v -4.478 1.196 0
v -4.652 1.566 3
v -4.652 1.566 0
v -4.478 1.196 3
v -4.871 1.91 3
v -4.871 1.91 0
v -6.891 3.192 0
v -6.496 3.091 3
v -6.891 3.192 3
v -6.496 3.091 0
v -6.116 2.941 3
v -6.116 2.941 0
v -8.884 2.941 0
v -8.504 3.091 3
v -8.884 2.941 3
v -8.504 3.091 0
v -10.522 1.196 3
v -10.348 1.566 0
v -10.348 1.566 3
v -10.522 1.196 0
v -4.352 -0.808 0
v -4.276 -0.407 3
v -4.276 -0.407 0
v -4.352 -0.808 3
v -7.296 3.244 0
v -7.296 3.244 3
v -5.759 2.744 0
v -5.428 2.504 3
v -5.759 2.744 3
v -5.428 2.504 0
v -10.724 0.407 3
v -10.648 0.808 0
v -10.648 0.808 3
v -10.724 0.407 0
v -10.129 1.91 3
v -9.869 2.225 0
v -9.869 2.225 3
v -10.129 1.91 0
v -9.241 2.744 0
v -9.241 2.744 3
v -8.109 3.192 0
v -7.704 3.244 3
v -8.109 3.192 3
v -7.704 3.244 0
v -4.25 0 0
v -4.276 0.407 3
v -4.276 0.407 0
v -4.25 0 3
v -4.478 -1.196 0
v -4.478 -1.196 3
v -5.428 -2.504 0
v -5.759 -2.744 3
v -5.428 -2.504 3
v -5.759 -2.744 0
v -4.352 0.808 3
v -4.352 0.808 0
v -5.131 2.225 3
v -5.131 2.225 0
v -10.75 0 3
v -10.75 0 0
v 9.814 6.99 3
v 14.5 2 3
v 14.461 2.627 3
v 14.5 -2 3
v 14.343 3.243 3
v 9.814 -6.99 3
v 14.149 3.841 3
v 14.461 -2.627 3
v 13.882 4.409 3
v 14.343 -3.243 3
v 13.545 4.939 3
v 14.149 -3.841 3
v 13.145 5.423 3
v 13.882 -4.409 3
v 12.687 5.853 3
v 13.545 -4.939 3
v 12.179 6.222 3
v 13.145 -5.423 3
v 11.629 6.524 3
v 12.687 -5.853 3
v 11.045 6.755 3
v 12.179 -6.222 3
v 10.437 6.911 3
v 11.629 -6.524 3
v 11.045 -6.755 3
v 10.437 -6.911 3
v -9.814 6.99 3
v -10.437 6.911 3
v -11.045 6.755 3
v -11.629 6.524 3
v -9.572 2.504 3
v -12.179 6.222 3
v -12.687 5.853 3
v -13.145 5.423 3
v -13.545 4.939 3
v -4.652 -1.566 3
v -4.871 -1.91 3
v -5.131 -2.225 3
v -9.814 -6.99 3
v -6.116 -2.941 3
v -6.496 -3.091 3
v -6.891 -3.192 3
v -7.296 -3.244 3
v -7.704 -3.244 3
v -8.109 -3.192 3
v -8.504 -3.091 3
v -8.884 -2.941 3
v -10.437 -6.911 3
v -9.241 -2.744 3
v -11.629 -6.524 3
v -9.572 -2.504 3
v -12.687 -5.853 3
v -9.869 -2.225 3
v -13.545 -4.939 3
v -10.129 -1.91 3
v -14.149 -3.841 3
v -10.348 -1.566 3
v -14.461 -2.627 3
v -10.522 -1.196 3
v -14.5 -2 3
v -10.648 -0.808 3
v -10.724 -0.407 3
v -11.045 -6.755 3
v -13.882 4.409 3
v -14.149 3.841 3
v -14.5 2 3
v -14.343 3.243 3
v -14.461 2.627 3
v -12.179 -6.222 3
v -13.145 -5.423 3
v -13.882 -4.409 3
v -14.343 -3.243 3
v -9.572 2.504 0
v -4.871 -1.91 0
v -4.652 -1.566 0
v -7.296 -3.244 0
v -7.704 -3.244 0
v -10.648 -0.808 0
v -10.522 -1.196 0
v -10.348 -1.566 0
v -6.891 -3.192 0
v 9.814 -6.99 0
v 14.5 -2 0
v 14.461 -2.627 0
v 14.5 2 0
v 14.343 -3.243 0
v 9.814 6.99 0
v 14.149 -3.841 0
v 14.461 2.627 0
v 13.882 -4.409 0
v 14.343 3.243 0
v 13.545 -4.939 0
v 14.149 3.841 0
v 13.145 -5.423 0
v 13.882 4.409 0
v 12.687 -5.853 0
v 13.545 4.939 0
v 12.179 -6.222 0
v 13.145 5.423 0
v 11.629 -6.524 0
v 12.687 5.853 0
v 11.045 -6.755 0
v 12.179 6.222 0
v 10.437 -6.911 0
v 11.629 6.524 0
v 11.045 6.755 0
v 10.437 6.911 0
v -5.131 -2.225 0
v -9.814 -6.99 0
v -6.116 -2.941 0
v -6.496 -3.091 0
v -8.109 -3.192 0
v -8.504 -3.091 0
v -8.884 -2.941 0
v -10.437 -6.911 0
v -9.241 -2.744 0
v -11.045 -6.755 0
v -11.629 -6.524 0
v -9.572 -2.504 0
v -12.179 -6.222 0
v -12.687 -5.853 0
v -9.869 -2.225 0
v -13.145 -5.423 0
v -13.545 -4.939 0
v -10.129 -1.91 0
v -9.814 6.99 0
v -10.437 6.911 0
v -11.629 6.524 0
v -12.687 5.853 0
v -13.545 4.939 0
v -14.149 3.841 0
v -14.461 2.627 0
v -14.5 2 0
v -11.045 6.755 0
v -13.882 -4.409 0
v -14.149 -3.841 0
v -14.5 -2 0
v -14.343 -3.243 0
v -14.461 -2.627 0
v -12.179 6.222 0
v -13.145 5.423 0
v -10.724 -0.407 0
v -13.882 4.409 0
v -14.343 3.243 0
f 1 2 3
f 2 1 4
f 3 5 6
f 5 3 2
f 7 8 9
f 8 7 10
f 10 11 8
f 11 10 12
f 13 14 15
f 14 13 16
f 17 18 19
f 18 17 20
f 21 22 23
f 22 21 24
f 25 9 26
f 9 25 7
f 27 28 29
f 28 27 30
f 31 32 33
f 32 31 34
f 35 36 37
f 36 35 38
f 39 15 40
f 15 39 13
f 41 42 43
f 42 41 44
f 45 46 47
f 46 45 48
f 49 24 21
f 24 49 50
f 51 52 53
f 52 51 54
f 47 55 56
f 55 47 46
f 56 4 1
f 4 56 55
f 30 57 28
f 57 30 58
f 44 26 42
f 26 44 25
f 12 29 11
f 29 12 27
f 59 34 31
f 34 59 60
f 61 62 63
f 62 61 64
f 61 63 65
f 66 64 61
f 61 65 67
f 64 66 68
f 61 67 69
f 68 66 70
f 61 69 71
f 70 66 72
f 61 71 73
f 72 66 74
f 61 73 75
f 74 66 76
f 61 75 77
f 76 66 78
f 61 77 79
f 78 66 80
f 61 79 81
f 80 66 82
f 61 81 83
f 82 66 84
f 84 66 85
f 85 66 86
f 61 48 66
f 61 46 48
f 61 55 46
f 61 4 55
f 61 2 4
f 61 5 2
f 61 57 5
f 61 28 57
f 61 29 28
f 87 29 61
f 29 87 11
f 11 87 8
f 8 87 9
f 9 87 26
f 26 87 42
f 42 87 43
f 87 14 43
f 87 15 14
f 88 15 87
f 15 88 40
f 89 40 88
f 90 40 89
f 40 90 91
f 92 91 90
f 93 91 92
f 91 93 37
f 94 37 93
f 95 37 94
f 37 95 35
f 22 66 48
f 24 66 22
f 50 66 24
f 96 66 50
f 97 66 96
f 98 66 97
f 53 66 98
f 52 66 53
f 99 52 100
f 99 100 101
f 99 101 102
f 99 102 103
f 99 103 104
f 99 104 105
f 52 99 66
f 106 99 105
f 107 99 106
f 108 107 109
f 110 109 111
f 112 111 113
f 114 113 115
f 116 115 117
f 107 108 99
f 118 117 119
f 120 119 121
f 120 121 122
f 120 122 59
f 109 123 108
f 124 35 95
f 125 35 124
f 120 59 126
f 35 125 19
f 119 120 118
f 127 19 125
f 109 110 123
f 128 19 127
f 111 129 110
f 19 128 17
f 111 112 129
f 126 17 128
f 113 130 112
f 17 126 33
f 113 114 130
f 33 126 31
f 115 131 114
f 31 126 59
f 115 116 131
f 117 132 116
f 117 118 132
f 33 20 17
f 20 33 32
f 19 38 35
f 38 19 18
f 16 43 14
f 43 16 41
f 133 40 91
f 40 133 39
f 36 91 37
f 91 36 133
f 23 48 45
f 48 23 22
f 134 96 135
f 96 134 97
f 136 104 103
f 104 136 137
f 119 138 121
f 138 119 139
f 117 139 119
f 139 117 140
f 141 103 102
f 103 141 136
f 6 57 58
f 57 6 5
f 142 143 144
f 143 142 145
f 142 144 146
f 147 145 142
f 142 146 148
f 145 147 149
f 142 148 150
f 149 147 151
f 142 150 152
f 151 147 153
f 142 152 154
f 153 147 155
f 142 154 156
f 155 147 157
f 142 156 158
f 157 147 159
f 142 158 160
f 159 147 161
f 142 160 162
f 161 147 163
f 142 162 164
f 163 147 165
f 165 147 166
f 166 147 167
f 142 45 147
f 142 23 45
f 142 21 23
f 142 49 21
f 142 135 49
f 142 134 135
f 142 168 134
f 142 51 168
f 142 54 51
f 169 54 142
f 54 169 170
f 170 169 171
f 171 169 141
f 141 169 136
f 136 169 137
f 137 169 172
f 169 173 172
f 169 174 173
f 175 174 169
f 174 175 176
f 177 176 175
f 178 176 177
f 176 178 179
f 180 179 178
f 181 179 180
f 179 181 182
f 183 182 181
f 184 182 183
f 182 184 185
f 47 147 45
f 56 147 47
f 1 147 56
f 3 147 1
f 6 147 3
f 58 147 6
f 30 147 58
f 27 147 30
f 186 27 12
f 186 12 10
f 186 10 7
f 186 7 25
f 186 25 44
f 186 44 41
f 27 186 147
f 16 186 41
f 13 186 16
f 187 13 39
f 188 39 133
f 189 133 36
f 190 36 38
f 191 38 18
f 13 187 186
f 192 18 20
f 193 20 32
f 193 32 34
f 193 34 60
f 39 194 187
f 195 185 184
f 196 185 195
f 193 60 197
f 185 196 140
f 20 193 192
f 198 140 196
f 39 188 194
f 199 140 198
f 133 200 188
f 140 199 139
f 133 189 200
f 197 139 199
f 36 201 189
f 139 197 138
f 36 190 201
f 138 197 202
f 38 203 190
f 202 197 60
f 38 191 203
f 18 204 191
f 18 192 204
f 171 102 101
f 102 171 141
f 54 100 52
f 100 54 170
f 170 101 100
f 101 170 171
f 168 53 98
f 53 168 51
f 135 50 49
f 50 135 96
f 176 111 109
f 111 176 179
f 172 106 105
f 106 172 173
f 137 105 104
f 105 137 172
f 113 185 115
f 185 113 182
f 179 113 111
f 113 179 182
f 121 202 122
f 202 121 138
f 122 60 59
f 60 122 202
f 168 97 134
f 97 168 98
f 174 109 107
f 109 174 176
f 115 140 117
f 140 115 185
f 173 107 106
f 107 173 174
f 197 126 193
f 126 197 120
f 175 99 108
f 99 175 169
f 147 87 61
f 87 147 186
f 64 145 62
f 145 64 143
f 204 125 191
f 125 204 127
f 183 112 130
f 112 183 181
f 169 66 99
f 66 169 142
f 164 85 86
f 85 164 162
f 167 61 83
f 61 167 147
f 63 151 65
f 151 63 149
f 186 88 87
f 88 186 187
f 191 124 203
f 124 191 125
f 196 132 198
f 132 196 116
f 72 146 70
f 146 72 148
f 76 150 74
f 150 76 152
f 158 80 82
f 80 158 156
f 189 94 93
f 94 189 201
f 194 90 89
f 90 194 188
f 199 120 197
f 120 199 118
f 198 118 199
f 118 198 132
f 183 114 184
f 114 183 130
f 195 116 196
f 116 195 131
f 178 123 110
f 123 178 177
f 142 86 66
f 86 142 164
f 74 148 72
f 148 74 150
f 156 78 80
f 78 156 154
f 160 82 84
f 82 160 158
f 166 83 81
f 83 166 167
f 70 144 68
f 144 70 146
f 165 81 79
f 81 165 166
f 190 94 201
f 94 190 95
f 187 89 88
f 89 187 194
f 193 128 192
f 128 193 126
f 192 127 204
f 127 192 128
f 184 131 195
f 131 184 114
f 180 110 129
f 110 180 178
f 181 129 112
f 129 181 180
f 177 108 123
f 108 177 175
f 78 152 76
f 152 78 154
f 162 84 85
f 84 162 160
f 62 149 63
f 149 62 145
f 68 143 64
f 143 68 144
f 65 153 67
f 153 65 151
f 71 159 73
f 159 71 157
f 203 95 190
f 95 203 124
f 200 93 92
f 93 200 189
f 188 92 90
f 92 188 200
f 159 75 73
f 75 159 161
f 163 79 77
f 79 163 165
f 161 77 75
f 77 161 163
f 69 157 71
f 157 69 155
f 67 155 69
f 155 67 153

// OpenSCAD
$fn = 50;


difference() {
	union() {
		hull() {
			translate(v = [-9.5000000000, 2.0000000000, 0]) {
				cylinder(h = 3, r = 5);
			}
			translate(v = [9.5000000000, 2.0000000000, 0]) {
				cylinder(h = 3, r = 5);
			}
			translate(v = [-9.5000000000, -2.0000000000, 0]) {
				cylinder(h = 3, r = 5);
			}
			translate(v = [9.5000000000, -2.0000000000, 0]) {
				cylinder(h = 3, r = 5);
			}
		}
	}
	union() {
		translate(v = [-7.5000000000, 0.0000000000, 0]) {
			cylinder(h = 3, r = 3.2500000000);
		}
		translate(v = [-7.5000000000, 0.0000000000, 0]) {
			cylinder(h = 3, r = 1.8000000000);
		}
		translate(v = [-7.5000000000, 0.0000000000, 0]) {
			cylinder(h = 3, r = 1.8000000000);
		}
		translate(v = [-7.5000000000, 0.0000000000, 0]) {
			cylinder(h = 3, r = 1.8000000000);
		}
	}
}
